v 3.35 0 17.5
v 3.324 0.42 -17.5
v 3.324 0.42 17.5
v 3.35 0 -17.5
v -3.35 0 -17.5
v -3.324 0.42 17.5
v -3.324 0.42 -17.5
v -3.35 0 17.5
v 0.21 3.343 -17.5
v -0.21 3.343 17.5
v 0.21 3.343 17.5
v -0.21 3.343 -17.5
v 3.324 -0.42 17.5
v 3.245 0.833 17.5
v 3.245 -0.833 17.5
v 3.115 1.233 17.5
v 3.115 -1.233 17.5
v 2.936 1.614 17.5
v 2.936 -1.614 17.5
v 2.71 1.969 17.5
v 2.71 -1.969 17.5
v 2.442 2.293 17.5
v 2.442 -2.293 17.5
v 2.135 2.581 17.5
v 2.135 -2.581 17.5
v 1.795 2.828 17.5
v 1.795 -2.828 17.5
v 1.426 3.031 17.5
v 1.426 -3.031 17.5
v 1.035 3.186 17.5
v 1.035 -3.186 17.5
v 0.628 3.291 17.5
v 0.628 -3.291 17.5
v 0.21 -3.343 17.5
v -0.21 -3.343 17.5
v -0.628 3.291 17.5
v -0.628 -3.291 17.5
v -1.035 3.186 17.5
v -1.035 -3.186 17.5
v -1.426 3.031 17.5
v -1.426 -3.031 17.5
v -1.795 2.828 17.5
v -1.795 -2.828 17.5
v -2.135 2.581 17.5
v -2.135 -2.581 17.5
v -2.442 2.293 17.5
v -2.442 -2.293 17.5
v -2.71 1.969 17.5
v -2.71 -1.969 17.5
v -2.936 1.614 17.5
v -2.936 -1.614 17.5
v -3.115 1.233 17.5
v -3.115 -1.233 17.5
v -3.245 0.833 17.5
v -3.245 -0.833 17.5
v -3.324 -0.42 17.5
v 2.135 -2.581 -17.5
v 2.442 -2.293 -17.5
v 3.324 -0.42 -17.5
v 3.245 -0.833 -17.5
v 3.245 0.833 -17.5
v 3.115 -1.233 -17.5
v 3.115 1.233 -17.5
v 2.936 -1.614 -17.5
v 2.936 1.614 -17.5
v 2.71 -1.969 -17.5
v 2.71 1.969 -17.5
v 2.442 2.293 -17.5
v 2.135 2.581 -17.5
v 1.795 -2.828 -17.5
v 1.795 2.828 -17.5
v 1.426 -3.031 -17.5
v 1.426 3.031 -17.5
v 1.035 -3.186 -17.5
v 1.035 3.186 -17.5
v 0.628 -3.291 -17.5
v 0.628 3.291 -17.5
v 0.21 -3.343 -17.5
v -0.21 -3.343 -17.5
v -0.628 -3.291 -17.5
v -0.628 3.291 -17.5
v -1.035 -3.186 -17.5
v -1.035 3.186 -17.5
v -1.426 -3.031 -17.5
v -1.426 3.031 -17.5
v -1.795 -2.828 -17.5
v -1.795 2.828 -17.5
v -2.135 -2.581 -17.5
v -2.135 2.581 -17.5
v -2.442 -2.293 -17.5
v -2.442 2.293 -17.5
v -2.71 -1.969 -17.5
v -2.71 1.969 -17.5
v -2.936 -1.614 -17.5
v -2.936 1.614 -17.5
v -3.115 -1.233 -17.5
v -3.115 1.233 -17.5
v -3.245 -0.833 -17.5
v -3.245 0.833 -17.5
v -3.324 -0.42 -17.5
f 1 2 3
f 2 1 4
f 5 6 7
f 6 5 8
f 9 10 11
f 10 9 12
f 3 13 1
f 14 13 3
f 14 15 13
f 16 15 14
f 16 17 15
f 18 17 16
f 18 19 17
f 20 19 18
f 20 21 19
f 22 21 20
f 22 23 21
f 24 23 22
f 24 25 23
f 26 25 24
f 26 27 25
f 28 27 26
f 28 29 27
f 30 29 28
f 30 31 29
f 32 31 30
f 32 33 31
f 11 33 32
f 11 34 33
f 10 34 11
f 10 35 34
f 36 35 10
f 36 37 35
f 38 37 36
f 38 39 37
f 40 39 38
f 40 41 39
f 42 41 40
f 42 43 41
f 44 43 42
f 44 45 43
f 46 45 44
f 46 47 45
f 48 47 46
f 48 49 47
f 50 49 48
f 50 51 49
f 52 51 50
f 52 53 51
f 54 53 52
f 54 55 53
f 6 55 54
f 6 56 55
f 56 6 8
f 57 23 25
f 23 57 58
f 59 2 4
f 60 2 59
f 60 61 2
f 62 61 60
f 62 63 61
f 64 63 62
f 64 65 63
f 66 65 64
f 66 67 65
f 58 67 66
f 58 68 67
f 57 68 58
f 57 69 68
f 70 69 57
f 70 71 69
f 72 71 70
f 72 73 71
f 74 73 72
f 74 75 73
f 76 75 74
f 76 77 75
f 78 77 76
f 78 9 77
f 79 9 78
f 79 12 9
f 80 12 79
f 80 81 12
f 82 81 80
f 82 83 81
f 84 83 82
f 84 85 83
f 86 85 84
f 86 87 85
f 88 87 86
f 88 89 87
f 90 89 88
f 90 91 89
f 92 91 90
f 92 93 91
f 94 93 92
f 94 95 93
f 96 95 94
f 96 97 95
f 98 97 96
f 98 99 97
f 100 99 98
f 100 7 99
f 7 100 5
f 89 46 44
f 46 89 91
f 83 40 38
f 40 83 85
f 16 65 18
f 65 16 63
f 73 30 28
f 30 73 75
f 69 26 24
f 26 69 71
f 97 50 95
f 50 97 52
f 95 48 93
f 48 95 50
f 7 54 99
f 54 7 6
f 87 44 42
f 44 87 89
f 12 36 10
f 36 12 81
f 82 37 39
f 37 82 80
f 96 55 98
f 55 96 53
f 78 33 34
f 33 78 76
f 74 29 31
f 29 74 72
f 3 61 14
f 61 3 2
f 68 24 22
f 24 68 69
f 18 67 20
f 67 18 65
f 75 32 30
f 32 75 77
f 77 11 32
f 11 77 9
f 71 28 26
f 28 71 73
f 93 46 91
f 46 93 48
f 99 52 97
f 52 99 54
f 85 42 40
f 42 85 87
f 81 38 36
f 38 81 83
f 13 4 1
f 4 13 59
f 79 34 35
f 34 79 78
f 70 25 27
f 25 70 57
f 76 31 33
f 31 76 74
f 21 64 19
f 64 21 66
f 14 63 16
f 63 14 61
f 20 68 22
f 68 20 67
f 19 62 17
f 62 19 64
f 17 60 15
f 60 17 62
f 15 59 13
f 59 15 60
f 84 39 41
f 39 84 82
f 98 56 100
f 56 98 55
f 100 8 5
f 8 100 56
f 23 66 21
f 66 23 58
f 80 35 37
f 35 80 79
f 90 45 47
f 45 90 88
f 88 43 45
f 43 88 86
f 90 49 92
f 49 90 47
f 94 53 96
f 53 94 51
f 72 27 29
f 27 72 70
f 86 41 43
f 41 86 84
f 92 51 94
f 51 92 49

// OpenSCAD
$fn = 50;


difference() {
	union() {
		translate(v = [0, 0, -17.5000000000]) {
			cylinder(h = 35, r = 3.3500000000);
		}
	}
	union() {
		translate(v = [0, 0, -100.0000000000]) {
			cylinder(h = 200, r = 0);
		}
	}
}
